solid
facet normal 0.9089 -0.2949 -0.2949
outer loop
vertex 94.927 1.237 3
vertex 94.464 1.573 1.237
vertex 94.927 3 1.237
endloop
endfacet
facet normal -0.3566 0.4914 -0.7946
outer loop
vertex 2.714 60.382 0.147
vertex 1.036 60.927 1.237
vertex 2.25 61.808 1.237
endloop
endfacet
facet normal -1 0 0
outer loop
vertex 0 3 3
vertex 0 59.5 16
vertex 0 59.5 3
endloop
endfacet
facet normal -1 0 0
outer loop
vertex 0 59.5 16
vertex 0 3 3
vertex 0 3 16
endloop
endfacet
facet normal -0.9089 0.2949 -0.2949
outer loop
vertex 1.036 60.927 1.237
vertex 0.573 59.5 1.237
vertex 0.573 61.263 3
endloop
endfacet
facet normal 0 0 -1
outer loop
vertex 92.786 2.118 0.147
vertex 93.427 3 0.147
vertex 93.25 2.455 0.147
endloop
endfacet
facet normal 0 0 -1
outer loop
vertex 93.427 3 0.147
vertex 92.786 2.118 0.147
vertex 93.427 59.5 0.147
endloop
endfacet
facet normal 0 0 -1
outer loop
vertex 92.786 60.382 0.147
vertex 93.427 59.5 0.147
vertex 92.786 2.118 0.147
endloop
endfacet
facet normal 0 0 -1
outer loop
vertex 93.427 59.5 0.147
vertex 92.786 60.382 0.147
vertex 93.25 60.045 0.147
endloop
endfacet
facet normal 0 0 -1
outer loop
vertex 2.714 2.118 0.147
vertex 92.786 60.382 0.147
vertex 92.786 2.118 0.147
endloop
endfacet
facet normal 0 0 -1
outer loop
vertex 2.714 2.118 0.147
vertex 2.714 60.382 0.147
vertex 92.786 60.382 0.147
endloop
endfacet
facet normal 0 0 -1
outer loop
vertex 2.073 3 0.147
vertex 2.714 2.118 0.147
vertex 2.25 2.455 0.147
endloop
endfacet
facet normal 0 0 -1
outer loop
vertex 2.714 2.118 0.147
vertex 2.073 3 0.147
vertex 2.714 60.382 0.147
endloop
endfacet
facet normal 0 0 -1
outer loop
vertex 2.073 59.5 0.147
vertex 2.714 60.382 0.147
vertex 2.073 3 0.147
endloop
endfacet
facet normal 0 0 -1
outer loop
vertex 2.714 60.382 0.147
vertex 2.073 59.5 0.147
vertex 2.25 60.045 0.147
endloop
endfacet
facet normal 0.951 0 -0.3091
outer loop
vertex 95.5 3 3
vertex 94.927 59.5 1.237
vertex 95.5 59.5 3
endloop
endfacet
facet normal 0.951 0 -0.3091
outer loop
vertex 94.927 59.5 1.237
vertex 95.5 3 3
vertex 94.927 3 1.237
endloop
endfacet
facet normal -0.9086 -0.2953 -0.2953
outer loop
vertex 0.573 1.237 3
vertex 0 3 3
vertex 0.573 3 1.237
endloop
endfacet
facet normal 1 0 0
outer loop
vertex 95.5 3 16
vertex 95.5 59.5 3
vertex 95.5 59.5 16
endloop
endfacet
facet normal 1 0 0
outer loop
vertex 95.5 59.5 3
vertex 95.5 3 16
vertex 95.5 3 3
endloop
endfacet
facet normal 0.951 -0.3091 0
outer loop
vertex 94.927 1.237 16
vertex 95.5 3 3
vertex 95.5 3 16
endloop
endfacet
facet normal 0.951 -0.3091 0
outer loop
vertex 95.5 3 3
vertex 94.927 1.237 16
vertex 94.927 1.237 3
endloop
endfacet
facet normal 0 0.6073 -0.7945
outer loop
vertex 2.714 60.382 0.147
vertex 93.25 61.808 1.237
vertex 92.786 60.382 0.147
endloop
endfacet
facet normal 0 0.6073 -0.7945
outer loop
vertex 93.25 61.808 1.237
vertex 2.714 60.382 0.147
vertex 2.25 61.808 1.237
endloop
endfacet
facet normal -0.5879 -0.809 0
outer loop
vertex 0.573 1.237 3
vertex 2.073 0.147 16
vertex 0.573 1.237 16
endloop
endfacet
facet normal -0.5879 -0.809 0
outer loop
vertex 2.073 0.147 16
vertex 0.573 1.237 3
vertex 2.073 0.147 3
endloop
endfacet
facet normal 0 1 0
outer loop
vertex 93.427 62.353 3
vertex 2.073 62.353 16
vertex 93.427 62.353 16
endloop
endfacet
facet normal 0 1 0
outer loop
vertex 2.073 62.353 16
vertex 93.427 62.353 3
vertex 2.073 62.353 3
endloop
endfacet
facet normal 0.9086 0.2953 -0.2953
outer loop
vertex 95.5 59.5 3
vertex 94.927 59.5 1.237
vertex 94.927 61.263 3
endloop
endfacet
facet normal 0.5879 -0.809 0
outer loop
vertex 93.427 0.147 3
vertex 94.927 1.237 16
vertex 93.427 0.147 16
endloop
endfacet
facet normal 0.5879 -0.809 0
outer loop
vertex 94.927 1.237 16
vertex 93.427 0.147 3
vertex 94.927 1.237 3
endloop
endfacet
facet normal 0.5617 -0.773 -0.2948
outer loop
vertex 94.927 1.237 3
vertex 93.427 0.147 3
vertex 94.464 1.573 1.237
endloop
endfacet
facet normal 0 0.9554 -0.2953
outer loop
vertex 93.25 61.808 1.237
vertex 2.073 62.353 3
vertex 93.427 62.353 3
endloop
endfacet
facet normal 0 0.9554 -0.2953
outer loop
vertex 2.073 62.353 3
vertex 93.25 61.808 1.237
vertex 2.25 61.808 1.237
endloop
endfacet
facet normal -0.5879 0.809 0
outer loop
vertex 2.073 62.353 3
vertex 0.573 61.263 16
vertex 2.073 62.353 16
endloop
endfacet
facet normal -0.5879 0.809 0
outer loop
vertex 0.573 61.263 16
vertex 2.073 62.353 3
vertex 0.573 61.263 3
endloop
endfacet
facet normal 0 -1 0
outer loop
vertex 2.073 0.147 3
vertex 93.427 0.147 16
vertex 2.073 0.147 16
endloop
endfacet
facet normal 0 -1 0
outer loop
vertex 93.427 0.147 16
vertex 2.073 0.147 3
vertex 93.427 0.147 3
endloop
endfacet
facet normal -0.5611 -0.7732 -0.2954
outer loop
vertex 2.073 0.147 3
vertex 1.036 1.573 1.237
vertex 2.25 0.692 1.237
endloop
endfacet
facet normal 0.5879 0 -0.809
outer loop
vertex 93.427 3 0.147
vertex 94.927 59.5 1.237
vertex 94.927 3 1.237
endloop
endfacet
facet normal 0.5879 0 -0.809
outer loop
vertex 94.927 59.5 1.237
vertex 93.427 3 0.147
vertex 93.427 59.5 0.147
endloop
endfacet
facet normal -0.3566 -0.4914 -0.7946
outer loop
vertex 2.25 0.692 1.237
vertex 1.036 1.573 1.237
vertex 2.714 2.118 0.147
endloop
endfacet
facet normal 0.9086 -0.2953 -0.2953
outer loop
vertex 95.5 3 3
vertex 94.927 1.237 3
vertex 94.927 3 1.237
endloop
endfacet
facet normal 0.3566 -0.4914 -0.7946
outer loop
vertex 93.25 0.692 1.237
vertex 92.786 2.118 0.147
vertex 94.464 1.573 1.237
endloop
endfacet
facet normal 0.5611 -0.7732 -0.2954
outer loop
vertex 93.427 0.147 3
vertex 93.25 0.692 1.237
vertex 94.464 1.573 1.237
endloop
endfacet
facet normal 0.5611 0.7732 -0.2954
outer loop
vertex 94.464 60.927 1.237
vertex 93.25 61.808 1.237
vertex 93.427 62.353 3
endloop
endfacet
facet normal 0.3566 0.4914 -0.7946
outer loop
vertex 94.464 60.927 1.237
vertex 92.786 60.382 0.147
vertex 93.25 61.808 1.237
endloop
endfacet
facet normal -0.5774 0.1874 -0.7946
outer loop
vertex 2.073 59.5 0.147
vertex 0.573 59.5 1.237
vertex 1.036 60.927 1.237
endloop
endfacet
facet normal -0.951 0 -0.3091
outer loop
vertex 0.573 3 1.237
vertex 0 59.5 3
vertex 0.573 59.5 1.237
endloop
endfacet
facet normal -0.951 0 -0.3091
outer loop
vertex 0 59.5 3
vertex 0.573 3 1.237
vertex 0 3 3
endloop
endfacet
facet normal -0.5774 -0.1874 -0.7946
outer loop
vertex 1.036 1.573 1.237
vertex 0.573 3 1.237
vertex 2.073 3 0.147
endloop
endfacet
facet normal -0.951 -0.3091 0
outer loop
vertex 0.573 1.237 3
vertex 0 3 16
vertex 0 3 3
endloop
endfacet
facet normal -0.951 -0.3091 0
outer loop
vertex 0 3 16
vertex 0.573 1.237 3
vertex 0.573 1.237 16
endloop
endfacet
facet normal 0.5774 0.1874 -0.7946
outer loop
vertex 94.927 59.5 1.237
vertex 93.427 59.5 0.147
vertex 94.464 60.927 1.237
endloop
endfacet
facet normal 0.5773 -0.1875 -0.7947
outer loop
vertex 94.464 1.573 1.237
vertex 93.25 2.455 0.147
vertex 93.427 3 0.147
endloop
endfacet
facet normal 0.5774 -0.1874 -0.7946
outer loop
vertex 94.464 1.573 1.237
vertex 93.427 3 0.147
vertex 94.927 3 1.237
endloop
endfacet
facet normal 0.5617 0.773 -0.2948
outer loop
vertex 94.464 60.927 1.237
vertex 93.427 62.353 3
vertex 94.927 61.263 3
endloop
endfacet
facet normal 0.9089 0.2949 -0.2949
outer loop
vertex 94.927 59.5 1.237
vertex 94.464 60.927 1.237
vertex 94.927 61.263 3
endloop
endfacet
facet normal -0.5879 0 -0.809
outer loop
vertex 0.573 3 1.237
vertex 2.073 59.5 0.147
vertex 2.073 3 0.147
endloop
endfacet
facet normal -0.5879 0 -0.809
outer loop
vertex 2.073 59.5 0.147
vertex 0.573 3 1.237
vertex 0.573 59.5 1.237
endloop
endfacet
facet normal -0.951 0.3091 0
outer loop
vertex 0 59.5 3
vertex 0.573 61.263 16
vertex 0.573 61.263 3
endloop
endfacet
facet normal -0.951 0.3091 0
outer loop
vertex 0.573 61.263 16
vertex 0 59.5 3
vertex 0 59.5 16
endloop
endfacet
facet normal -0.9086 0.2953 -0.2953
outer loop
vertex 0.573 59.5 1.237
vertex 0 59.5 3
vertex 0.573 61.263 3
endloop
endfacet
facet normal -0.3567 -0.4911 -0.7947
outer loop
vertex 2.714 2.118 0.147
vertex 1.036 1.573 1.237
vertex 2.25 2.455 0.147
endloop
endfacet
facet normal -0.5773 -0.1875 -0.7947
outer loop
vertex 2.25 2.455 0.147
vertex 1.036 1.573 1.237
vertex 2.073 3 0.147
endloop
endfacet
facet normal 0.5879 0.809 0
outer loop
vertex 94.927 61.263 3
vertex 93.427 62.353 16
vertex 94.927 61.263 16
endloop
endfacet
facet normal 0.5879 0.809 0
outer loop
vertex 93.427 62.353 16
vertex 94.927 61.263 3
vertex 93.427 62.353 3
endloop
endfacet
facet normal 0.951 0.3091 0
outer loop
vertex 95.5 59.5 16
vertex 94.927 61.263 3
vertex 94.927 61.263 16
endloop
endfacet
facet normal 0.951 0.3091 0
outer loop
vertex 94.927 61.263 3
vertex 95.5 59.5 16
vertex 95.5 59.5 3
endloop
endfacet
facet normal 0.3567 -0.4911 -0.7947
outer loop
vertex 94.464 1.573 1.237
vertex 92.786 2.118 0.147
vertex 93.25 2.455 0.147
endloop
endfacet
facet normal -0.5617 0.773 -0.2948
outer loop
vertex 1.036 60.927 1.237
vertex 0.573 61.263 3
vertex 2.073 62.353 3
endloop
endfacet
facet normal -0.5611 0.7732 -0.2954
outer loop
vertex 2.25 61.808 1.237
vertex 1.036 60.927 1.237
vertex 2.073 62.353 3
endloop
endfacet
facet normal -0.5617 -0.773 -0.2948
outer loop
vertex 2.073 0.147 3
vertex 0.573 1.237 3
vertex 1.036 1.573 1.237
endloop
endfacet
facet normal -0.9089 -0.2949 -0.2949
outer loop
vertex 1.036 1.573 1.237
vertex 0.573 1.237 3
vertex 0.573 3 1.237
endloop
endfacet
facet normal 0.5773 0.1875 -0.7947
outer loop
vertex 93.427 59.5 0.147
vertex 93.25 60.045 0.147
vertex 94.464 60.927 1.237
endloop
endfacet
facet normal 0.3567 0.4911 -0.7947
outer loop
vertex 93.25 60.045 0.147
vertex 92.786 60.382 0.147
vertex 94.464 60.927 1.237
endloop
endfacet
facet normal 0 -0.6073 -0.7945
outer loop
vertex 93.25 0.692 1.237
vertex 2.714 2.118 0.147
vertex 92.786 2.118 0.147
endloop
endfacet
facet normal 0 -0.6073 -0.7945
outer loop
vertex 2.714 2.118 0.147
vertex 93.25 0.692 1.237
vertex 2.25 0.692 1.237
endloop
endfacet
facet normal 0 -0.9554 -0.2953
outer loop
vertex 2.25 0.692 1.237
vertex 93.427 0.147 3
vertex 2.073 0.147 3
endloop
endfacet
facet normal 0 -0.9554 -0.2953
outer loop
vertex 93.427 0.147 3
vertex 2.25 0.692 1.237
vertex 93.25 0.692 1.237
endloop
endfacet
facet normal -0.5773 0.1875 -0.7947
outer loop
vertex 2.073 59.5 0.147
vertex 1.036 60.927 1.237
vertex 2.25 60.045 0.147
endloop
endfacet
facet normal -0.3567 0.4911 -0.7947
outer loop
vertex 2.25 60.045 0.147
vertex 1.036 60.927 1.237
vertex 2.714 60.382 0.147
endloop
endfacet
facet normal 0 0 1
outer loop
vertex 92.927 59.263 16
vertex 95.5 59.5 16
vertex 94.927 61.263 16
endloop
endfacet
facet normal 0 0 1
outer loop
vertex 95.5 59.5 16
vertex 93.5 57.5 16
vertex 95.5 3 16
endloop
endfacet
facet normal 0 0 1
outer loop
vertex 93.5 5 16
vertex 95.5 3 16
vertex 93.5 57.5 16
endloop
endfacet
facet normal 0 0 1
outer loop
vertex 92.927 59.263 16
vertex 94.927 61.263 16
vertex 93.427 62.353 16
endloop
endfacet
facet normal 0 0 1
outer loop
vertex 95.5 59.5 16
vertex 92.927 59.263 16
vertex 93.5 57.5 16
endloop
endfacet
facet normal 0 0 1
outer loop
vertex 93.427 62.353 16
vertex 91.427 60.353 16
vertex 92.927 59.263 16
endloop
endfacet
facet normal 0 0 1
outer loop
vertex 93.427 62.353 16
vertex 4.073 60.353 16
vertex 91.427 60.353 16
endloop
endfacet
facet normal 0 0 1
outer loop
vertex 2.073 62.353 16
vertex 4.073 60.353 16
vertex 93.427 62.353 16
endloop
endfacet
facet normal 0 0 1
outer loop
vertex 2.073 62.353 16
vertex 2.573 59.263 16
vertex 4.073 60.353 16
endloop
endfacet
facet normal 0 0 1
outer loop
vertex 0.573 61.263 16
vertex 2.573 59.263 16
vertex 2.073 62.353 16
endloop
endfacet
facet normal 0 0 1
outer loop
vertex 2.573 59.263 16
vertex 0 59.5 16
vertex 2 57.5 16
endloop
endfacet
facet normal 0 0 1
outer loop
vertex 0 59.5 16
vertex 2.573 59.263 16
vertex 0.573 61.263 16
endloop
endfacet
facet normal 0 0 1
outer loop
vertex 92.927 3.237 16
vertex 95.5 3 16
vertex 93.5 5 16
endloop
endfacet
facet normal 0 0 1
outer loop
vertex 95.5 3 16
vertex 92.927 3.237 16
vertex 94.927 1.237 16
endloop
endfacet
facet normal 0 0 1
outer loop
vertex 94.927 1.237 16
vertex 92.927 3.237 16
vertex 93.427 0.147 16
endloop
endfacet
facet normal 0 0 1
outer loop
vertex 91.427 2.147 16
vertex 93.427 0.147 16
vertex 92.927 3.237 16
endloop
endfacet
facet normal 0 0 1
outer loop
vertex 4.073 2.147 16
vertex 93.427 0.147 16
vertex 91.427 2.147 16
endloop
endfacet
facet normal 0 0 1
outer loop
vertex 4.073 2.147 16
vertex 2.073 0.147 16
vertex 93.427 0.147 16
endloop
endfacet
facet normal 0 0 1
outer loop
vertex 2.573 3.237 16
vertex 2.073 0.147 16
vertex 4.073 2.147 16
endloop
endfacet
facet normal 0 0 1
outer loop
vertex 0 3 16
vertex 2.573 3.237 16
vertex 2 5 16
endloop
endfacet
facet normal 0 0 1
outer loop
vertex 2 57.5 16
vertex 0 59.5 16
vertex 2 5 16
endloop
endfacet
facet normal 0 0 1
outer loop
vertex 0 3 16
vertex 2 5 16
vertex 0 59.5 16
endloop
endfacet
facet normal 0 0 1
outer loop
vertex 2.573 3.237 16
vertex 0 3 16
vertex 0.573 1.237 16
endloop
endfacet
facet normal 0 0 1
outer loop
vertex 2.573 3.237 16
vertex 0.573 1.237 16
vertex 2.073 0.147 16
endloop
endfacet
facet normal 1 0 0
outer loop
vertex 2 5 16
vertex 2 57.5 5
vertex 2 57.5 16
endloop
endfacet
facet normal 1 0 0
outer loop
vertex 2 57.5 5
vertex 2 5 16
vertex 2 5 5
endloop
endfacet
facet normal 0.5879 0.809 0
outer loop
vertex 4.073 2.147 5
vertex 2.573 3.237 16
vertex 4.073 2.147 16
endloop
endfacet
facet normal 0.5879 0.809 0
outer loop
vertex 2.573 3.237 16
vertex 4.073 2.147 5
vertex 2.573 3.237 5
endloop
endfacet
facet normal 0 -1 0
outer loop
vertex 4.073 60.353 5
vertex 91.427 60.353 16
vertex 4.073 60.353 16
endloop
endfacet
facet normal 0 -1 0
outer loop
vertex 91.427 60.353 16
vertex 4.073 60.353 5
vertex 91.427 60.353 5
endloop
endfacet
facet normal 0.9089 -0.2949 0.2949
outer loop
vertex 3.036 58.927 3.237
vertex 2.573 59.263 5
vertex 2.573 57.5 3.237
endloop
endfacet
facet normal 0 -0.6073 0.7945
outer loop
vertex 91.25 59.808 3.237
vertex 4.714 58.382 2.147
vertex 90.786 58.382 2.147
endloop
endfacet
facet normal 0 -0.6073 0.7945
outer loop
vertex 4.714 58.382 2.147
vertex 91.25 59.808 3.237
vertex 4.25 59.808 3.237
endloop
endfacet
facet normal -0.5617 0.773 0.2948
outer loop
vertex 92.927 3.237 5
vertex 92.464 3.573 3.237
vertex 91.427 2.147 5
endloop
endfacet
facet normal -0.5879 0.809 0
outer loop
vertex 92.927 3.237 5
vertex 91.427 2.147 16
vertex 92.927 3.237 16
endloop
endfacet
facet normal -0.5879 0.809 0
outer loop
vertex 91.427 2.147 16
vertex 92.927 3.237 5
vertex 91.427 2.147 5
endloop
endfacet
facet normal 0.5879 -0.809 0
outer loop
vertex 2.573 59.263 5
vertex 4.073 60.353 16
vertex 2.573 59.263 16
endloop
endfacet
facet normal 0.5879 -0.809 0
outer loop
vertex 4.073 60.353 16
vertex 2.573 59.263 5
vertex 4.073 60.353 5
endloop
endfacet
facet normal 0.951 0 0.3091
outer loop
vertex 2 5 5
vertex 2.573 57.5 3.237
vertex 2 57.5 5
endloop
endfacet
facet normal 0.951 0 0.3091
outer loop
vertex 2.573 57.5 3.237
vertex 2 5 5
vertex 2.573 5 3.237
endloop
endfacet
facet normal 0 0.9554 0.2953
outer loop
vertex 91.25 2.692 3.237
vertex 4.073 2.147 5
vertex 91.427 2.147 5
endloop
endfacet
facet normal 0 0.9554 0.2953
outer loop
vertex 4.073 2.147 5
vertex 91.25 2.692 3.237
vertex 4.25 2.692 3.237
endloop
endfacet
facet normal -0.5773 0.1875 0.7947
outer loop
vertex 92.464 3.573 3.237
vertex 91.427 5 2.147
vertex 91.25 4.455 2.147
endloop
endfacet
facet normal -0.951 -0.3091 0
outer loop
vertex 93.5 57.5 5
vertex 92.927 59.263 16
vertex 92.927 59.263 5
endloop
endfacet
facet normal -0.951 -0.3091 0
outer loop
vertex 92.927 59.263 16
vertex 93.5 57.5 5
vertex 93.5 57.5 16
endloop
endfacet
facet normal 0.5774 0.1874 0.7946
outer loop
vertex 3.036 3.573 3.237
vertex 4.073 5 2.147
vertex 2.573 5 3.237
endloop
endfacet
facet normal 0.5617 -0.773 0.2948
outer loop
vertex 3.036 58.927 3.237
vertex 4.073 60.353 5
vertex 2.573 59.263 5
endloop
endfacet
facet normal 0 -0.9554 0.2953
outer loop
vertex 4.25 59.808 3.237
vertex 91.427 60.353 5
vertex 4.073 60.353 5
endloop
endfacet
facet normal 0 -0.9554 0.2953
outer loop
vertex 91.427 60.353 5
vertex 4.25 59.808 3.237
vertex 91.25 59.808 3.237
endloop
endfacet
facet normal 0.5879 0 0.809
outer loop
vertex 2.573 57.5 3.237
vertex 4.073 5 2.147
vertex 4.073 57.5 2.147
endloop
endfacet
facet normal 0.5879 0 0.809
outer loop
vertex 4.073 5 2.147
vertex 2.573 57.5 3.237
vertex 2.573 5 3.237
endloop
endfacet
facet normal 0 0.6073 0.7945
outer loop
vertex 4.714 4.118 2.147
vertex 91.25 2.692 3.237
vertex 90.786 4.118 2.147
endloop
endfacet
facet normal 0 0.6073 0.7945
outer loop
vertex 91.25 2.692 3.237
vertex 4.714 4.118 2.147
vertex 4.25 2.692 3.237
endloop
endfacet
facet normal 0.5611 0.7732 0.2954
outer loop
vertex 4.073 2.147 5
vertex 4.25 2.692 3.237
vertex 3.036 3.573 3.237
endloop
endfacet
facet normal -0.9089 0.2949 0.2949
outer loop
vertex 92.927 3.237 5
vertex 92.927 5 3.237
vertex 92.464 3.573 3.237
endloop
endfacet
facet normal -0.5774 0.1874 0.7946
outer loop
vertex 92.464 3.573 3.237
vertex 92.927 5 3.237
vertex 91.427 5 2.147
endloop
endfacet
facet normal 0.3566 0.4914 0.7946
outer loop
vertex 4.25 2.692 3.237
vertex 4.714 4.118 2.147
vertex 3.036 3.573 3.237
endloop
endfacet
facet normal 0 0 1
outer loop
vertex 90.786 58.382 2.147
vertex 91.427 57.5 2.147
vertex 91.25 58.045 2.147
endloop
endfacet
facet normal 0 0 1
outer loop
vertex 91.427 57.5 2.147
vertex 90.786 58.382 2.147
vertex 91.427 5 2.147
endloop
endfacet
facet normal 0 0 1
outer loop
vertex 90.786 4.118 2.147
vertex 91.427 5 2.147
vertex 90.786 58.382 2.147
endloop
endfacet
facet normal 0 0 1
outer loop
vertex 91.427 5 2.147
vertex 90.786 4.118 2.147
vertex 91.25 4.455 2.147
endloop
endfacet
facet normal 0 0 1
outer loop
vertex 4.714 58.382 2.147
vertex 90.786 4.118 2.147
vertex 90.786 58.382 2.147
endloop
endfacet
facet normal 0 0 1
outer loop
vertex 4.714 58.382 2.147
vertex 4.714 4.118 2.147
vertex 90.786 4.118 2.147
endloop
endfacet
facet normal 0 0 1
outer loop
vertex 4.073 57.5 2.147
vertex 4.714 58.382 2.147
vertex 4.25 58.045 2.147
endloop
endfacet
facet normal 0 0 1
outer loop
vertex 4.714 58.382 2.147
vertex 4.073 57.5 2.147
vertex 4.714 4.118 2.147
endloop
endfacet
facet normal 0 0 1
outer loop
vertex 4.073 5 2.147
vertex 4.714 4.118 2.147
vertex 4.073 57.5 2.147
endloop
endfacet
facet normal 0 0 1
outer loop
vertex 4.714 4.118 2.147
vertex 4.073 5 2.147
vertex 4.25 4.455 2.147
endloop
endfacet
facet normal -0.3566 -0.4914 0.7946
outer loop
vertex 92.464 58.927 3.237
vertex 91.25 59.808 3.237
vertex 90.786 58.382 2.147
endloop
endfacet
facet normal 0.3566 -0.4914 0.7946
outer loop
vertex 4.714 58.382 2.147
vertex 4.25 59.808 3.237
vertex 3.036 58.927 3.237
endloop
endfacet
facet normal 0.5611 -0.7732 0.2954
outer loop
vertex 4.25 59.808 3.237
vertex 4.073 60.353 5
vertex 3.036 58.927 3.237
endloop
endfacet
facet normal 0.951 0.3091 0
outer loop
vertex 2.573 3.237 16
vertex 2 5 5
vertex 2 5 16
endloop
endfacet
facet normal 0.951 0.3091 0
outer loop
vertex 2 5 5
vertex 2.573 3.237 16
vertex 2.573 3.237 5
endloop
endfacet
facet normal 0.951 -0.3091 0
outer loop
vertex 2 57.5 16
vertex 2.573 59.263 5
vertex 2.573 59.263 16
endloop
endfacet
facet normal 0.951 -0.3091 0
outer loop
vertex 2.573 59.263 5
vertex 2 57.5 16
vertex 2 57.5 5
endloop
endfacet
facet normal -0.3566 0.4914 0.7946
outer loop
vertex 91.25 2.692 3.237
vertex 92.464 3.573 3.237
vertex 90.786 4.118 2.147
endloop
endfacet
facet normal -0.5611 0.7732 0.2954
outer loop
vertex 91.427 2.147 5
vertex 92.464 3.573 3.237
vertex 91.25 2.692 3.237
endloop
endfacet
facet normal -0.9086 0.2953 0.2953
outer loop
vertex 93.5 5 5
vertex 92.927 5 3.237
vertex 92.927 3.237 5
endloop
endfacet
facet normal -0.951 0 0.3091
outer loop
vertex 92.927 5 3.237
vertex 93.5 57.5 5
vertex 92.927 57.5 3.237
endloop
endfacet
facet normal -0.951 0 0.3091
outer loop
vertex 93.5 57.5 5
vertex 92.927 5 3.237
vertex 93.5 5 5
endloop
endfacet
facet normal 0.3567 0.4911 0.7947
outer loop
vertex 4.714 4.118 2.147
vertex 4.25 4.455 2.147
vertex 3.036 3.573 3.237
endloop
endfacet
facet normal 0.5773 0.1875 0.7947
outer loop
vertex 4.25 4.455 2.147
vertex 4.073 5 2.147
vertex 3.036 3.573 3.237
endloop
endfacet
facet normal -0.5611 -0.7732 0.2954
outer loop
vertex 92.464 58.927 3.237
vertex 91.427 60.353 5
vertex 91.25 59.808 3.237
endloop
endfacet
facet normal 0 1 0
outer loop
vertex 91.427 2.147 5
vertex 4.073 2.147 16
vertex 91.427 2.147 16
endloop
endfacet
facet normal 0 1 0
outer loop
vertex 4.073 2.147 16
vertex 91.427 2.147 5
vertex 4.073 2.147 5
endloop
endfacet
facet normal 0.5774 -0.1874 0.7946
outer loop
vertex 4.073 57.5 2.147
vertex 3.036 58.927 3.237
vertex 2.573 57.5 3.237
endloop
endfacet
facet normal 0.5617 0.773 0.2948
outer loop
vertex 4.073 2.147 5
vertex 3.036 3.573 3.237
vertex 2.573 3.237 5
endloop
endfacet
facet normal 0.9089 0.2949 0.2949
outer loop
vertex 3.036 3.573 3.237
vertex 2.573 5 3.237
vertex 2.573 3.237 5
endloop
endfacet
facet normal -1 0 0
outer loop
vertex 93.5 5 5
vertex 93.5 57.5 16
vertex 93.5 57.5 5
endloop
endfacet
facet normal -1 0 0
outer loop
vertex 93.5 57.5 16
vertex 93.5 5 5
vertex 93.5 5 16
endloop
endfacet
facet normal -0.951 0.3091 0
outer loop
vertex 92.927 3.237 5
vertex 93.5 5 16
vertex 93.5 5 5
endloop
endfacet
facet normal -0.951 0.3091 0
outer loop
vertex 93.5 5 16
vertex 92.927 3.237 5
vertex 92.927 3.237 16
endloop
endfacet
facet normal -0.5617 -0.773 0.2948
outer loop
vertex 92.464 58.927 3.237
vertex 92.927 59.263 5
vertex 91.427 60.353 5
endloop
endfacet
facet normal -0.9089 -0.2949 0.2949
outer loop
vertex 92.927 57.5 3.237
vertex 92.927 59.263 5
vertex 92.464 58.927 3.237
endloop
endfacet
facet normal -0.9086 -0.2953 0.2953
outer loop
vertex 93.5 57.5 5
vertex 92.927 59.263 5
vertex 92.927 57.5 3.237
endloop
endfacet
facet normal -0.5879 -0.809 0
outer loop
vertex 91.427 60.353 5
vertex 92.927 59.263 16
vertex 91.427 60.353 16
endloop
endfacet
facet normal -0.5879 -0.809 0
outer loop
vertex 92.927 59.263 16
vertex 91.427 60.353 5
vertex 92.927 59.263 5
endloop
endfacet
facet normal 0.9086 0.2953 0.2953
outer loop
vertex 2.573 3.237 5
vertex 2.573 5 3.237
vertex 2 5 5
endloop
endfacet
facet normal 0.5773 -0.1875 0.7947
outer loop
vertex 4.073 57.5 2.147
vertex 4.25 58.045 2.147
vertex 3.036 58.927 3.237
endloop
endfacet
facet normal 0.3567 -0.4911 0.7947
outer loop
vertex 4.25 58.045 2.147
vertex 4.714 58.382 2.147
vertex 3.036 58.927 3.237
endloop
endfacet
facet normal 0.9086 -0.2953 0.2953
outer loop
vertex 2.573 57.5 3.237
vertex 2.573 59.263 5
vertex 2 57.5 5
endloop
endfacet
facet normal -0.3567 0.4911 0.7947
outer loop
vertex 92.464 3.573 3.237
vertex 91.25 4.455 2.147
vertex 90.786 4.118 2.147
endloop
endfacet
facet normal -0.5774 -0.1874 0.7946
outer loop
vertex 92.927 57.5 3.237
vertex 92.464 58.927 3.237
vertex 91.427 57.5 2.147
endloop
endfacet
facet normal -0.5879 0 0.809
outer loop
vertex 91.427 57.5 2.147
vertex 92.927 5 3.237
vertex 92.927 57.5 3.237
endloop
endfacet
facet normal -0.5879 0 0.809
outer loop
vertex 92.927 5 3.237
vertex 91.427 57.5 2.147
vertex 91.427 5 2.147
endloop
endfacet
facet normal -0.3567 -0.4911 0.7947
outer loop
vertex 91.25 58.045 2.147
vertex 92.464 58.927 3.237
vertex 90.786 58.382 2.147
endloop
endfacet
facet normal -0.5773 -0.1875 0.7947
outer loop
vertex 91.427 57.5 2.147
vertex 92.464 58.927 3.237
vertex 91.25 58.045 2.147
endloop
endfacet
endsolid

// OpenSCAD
// Settings
box_length = 95.5;
box_width = 62.5;
box_height = 16;
wall_thickness = 2;

rounding = 3;
bleed = 1;

// Derived attributes
r_box_length = box_length-rounding*2;
r_box_width = box_width-rounding*2;
r_box_height = box_height-rounding*2+rounding+bleed;

r_hollow_length = box_length-rounding*2-wall_thickness*2;
r_hollow_width = box_width-rounding*2-wall_thickness*2;
r_hollow_height = box_height-rounding*2+rounding+bleed;
r_hollow_offset = rounding+wall_thickness;

difference() {
  // Base tray
  minkowski() {
    translate([rounding, rounding, rounding]) {
      cube([r_box_length, r_box_width, r_box_height]);
    }
    sphere(rounding);
  }

  // Slice off top
  translate([-bleed,-bleed,box_height]) {
    cube([box_length+bleed*2, box_width+bleed*2, rounding+bleed]);
  }

  // Hollow out tray
  minkowski() {
    translate([r_hollow_offset, r_hollow_offset, r_hollow_offset]) {
      cube([r_hollow_length, r_hollow_width, r_hollow_height]);
    }
    sphere(rounding);
  }
}
